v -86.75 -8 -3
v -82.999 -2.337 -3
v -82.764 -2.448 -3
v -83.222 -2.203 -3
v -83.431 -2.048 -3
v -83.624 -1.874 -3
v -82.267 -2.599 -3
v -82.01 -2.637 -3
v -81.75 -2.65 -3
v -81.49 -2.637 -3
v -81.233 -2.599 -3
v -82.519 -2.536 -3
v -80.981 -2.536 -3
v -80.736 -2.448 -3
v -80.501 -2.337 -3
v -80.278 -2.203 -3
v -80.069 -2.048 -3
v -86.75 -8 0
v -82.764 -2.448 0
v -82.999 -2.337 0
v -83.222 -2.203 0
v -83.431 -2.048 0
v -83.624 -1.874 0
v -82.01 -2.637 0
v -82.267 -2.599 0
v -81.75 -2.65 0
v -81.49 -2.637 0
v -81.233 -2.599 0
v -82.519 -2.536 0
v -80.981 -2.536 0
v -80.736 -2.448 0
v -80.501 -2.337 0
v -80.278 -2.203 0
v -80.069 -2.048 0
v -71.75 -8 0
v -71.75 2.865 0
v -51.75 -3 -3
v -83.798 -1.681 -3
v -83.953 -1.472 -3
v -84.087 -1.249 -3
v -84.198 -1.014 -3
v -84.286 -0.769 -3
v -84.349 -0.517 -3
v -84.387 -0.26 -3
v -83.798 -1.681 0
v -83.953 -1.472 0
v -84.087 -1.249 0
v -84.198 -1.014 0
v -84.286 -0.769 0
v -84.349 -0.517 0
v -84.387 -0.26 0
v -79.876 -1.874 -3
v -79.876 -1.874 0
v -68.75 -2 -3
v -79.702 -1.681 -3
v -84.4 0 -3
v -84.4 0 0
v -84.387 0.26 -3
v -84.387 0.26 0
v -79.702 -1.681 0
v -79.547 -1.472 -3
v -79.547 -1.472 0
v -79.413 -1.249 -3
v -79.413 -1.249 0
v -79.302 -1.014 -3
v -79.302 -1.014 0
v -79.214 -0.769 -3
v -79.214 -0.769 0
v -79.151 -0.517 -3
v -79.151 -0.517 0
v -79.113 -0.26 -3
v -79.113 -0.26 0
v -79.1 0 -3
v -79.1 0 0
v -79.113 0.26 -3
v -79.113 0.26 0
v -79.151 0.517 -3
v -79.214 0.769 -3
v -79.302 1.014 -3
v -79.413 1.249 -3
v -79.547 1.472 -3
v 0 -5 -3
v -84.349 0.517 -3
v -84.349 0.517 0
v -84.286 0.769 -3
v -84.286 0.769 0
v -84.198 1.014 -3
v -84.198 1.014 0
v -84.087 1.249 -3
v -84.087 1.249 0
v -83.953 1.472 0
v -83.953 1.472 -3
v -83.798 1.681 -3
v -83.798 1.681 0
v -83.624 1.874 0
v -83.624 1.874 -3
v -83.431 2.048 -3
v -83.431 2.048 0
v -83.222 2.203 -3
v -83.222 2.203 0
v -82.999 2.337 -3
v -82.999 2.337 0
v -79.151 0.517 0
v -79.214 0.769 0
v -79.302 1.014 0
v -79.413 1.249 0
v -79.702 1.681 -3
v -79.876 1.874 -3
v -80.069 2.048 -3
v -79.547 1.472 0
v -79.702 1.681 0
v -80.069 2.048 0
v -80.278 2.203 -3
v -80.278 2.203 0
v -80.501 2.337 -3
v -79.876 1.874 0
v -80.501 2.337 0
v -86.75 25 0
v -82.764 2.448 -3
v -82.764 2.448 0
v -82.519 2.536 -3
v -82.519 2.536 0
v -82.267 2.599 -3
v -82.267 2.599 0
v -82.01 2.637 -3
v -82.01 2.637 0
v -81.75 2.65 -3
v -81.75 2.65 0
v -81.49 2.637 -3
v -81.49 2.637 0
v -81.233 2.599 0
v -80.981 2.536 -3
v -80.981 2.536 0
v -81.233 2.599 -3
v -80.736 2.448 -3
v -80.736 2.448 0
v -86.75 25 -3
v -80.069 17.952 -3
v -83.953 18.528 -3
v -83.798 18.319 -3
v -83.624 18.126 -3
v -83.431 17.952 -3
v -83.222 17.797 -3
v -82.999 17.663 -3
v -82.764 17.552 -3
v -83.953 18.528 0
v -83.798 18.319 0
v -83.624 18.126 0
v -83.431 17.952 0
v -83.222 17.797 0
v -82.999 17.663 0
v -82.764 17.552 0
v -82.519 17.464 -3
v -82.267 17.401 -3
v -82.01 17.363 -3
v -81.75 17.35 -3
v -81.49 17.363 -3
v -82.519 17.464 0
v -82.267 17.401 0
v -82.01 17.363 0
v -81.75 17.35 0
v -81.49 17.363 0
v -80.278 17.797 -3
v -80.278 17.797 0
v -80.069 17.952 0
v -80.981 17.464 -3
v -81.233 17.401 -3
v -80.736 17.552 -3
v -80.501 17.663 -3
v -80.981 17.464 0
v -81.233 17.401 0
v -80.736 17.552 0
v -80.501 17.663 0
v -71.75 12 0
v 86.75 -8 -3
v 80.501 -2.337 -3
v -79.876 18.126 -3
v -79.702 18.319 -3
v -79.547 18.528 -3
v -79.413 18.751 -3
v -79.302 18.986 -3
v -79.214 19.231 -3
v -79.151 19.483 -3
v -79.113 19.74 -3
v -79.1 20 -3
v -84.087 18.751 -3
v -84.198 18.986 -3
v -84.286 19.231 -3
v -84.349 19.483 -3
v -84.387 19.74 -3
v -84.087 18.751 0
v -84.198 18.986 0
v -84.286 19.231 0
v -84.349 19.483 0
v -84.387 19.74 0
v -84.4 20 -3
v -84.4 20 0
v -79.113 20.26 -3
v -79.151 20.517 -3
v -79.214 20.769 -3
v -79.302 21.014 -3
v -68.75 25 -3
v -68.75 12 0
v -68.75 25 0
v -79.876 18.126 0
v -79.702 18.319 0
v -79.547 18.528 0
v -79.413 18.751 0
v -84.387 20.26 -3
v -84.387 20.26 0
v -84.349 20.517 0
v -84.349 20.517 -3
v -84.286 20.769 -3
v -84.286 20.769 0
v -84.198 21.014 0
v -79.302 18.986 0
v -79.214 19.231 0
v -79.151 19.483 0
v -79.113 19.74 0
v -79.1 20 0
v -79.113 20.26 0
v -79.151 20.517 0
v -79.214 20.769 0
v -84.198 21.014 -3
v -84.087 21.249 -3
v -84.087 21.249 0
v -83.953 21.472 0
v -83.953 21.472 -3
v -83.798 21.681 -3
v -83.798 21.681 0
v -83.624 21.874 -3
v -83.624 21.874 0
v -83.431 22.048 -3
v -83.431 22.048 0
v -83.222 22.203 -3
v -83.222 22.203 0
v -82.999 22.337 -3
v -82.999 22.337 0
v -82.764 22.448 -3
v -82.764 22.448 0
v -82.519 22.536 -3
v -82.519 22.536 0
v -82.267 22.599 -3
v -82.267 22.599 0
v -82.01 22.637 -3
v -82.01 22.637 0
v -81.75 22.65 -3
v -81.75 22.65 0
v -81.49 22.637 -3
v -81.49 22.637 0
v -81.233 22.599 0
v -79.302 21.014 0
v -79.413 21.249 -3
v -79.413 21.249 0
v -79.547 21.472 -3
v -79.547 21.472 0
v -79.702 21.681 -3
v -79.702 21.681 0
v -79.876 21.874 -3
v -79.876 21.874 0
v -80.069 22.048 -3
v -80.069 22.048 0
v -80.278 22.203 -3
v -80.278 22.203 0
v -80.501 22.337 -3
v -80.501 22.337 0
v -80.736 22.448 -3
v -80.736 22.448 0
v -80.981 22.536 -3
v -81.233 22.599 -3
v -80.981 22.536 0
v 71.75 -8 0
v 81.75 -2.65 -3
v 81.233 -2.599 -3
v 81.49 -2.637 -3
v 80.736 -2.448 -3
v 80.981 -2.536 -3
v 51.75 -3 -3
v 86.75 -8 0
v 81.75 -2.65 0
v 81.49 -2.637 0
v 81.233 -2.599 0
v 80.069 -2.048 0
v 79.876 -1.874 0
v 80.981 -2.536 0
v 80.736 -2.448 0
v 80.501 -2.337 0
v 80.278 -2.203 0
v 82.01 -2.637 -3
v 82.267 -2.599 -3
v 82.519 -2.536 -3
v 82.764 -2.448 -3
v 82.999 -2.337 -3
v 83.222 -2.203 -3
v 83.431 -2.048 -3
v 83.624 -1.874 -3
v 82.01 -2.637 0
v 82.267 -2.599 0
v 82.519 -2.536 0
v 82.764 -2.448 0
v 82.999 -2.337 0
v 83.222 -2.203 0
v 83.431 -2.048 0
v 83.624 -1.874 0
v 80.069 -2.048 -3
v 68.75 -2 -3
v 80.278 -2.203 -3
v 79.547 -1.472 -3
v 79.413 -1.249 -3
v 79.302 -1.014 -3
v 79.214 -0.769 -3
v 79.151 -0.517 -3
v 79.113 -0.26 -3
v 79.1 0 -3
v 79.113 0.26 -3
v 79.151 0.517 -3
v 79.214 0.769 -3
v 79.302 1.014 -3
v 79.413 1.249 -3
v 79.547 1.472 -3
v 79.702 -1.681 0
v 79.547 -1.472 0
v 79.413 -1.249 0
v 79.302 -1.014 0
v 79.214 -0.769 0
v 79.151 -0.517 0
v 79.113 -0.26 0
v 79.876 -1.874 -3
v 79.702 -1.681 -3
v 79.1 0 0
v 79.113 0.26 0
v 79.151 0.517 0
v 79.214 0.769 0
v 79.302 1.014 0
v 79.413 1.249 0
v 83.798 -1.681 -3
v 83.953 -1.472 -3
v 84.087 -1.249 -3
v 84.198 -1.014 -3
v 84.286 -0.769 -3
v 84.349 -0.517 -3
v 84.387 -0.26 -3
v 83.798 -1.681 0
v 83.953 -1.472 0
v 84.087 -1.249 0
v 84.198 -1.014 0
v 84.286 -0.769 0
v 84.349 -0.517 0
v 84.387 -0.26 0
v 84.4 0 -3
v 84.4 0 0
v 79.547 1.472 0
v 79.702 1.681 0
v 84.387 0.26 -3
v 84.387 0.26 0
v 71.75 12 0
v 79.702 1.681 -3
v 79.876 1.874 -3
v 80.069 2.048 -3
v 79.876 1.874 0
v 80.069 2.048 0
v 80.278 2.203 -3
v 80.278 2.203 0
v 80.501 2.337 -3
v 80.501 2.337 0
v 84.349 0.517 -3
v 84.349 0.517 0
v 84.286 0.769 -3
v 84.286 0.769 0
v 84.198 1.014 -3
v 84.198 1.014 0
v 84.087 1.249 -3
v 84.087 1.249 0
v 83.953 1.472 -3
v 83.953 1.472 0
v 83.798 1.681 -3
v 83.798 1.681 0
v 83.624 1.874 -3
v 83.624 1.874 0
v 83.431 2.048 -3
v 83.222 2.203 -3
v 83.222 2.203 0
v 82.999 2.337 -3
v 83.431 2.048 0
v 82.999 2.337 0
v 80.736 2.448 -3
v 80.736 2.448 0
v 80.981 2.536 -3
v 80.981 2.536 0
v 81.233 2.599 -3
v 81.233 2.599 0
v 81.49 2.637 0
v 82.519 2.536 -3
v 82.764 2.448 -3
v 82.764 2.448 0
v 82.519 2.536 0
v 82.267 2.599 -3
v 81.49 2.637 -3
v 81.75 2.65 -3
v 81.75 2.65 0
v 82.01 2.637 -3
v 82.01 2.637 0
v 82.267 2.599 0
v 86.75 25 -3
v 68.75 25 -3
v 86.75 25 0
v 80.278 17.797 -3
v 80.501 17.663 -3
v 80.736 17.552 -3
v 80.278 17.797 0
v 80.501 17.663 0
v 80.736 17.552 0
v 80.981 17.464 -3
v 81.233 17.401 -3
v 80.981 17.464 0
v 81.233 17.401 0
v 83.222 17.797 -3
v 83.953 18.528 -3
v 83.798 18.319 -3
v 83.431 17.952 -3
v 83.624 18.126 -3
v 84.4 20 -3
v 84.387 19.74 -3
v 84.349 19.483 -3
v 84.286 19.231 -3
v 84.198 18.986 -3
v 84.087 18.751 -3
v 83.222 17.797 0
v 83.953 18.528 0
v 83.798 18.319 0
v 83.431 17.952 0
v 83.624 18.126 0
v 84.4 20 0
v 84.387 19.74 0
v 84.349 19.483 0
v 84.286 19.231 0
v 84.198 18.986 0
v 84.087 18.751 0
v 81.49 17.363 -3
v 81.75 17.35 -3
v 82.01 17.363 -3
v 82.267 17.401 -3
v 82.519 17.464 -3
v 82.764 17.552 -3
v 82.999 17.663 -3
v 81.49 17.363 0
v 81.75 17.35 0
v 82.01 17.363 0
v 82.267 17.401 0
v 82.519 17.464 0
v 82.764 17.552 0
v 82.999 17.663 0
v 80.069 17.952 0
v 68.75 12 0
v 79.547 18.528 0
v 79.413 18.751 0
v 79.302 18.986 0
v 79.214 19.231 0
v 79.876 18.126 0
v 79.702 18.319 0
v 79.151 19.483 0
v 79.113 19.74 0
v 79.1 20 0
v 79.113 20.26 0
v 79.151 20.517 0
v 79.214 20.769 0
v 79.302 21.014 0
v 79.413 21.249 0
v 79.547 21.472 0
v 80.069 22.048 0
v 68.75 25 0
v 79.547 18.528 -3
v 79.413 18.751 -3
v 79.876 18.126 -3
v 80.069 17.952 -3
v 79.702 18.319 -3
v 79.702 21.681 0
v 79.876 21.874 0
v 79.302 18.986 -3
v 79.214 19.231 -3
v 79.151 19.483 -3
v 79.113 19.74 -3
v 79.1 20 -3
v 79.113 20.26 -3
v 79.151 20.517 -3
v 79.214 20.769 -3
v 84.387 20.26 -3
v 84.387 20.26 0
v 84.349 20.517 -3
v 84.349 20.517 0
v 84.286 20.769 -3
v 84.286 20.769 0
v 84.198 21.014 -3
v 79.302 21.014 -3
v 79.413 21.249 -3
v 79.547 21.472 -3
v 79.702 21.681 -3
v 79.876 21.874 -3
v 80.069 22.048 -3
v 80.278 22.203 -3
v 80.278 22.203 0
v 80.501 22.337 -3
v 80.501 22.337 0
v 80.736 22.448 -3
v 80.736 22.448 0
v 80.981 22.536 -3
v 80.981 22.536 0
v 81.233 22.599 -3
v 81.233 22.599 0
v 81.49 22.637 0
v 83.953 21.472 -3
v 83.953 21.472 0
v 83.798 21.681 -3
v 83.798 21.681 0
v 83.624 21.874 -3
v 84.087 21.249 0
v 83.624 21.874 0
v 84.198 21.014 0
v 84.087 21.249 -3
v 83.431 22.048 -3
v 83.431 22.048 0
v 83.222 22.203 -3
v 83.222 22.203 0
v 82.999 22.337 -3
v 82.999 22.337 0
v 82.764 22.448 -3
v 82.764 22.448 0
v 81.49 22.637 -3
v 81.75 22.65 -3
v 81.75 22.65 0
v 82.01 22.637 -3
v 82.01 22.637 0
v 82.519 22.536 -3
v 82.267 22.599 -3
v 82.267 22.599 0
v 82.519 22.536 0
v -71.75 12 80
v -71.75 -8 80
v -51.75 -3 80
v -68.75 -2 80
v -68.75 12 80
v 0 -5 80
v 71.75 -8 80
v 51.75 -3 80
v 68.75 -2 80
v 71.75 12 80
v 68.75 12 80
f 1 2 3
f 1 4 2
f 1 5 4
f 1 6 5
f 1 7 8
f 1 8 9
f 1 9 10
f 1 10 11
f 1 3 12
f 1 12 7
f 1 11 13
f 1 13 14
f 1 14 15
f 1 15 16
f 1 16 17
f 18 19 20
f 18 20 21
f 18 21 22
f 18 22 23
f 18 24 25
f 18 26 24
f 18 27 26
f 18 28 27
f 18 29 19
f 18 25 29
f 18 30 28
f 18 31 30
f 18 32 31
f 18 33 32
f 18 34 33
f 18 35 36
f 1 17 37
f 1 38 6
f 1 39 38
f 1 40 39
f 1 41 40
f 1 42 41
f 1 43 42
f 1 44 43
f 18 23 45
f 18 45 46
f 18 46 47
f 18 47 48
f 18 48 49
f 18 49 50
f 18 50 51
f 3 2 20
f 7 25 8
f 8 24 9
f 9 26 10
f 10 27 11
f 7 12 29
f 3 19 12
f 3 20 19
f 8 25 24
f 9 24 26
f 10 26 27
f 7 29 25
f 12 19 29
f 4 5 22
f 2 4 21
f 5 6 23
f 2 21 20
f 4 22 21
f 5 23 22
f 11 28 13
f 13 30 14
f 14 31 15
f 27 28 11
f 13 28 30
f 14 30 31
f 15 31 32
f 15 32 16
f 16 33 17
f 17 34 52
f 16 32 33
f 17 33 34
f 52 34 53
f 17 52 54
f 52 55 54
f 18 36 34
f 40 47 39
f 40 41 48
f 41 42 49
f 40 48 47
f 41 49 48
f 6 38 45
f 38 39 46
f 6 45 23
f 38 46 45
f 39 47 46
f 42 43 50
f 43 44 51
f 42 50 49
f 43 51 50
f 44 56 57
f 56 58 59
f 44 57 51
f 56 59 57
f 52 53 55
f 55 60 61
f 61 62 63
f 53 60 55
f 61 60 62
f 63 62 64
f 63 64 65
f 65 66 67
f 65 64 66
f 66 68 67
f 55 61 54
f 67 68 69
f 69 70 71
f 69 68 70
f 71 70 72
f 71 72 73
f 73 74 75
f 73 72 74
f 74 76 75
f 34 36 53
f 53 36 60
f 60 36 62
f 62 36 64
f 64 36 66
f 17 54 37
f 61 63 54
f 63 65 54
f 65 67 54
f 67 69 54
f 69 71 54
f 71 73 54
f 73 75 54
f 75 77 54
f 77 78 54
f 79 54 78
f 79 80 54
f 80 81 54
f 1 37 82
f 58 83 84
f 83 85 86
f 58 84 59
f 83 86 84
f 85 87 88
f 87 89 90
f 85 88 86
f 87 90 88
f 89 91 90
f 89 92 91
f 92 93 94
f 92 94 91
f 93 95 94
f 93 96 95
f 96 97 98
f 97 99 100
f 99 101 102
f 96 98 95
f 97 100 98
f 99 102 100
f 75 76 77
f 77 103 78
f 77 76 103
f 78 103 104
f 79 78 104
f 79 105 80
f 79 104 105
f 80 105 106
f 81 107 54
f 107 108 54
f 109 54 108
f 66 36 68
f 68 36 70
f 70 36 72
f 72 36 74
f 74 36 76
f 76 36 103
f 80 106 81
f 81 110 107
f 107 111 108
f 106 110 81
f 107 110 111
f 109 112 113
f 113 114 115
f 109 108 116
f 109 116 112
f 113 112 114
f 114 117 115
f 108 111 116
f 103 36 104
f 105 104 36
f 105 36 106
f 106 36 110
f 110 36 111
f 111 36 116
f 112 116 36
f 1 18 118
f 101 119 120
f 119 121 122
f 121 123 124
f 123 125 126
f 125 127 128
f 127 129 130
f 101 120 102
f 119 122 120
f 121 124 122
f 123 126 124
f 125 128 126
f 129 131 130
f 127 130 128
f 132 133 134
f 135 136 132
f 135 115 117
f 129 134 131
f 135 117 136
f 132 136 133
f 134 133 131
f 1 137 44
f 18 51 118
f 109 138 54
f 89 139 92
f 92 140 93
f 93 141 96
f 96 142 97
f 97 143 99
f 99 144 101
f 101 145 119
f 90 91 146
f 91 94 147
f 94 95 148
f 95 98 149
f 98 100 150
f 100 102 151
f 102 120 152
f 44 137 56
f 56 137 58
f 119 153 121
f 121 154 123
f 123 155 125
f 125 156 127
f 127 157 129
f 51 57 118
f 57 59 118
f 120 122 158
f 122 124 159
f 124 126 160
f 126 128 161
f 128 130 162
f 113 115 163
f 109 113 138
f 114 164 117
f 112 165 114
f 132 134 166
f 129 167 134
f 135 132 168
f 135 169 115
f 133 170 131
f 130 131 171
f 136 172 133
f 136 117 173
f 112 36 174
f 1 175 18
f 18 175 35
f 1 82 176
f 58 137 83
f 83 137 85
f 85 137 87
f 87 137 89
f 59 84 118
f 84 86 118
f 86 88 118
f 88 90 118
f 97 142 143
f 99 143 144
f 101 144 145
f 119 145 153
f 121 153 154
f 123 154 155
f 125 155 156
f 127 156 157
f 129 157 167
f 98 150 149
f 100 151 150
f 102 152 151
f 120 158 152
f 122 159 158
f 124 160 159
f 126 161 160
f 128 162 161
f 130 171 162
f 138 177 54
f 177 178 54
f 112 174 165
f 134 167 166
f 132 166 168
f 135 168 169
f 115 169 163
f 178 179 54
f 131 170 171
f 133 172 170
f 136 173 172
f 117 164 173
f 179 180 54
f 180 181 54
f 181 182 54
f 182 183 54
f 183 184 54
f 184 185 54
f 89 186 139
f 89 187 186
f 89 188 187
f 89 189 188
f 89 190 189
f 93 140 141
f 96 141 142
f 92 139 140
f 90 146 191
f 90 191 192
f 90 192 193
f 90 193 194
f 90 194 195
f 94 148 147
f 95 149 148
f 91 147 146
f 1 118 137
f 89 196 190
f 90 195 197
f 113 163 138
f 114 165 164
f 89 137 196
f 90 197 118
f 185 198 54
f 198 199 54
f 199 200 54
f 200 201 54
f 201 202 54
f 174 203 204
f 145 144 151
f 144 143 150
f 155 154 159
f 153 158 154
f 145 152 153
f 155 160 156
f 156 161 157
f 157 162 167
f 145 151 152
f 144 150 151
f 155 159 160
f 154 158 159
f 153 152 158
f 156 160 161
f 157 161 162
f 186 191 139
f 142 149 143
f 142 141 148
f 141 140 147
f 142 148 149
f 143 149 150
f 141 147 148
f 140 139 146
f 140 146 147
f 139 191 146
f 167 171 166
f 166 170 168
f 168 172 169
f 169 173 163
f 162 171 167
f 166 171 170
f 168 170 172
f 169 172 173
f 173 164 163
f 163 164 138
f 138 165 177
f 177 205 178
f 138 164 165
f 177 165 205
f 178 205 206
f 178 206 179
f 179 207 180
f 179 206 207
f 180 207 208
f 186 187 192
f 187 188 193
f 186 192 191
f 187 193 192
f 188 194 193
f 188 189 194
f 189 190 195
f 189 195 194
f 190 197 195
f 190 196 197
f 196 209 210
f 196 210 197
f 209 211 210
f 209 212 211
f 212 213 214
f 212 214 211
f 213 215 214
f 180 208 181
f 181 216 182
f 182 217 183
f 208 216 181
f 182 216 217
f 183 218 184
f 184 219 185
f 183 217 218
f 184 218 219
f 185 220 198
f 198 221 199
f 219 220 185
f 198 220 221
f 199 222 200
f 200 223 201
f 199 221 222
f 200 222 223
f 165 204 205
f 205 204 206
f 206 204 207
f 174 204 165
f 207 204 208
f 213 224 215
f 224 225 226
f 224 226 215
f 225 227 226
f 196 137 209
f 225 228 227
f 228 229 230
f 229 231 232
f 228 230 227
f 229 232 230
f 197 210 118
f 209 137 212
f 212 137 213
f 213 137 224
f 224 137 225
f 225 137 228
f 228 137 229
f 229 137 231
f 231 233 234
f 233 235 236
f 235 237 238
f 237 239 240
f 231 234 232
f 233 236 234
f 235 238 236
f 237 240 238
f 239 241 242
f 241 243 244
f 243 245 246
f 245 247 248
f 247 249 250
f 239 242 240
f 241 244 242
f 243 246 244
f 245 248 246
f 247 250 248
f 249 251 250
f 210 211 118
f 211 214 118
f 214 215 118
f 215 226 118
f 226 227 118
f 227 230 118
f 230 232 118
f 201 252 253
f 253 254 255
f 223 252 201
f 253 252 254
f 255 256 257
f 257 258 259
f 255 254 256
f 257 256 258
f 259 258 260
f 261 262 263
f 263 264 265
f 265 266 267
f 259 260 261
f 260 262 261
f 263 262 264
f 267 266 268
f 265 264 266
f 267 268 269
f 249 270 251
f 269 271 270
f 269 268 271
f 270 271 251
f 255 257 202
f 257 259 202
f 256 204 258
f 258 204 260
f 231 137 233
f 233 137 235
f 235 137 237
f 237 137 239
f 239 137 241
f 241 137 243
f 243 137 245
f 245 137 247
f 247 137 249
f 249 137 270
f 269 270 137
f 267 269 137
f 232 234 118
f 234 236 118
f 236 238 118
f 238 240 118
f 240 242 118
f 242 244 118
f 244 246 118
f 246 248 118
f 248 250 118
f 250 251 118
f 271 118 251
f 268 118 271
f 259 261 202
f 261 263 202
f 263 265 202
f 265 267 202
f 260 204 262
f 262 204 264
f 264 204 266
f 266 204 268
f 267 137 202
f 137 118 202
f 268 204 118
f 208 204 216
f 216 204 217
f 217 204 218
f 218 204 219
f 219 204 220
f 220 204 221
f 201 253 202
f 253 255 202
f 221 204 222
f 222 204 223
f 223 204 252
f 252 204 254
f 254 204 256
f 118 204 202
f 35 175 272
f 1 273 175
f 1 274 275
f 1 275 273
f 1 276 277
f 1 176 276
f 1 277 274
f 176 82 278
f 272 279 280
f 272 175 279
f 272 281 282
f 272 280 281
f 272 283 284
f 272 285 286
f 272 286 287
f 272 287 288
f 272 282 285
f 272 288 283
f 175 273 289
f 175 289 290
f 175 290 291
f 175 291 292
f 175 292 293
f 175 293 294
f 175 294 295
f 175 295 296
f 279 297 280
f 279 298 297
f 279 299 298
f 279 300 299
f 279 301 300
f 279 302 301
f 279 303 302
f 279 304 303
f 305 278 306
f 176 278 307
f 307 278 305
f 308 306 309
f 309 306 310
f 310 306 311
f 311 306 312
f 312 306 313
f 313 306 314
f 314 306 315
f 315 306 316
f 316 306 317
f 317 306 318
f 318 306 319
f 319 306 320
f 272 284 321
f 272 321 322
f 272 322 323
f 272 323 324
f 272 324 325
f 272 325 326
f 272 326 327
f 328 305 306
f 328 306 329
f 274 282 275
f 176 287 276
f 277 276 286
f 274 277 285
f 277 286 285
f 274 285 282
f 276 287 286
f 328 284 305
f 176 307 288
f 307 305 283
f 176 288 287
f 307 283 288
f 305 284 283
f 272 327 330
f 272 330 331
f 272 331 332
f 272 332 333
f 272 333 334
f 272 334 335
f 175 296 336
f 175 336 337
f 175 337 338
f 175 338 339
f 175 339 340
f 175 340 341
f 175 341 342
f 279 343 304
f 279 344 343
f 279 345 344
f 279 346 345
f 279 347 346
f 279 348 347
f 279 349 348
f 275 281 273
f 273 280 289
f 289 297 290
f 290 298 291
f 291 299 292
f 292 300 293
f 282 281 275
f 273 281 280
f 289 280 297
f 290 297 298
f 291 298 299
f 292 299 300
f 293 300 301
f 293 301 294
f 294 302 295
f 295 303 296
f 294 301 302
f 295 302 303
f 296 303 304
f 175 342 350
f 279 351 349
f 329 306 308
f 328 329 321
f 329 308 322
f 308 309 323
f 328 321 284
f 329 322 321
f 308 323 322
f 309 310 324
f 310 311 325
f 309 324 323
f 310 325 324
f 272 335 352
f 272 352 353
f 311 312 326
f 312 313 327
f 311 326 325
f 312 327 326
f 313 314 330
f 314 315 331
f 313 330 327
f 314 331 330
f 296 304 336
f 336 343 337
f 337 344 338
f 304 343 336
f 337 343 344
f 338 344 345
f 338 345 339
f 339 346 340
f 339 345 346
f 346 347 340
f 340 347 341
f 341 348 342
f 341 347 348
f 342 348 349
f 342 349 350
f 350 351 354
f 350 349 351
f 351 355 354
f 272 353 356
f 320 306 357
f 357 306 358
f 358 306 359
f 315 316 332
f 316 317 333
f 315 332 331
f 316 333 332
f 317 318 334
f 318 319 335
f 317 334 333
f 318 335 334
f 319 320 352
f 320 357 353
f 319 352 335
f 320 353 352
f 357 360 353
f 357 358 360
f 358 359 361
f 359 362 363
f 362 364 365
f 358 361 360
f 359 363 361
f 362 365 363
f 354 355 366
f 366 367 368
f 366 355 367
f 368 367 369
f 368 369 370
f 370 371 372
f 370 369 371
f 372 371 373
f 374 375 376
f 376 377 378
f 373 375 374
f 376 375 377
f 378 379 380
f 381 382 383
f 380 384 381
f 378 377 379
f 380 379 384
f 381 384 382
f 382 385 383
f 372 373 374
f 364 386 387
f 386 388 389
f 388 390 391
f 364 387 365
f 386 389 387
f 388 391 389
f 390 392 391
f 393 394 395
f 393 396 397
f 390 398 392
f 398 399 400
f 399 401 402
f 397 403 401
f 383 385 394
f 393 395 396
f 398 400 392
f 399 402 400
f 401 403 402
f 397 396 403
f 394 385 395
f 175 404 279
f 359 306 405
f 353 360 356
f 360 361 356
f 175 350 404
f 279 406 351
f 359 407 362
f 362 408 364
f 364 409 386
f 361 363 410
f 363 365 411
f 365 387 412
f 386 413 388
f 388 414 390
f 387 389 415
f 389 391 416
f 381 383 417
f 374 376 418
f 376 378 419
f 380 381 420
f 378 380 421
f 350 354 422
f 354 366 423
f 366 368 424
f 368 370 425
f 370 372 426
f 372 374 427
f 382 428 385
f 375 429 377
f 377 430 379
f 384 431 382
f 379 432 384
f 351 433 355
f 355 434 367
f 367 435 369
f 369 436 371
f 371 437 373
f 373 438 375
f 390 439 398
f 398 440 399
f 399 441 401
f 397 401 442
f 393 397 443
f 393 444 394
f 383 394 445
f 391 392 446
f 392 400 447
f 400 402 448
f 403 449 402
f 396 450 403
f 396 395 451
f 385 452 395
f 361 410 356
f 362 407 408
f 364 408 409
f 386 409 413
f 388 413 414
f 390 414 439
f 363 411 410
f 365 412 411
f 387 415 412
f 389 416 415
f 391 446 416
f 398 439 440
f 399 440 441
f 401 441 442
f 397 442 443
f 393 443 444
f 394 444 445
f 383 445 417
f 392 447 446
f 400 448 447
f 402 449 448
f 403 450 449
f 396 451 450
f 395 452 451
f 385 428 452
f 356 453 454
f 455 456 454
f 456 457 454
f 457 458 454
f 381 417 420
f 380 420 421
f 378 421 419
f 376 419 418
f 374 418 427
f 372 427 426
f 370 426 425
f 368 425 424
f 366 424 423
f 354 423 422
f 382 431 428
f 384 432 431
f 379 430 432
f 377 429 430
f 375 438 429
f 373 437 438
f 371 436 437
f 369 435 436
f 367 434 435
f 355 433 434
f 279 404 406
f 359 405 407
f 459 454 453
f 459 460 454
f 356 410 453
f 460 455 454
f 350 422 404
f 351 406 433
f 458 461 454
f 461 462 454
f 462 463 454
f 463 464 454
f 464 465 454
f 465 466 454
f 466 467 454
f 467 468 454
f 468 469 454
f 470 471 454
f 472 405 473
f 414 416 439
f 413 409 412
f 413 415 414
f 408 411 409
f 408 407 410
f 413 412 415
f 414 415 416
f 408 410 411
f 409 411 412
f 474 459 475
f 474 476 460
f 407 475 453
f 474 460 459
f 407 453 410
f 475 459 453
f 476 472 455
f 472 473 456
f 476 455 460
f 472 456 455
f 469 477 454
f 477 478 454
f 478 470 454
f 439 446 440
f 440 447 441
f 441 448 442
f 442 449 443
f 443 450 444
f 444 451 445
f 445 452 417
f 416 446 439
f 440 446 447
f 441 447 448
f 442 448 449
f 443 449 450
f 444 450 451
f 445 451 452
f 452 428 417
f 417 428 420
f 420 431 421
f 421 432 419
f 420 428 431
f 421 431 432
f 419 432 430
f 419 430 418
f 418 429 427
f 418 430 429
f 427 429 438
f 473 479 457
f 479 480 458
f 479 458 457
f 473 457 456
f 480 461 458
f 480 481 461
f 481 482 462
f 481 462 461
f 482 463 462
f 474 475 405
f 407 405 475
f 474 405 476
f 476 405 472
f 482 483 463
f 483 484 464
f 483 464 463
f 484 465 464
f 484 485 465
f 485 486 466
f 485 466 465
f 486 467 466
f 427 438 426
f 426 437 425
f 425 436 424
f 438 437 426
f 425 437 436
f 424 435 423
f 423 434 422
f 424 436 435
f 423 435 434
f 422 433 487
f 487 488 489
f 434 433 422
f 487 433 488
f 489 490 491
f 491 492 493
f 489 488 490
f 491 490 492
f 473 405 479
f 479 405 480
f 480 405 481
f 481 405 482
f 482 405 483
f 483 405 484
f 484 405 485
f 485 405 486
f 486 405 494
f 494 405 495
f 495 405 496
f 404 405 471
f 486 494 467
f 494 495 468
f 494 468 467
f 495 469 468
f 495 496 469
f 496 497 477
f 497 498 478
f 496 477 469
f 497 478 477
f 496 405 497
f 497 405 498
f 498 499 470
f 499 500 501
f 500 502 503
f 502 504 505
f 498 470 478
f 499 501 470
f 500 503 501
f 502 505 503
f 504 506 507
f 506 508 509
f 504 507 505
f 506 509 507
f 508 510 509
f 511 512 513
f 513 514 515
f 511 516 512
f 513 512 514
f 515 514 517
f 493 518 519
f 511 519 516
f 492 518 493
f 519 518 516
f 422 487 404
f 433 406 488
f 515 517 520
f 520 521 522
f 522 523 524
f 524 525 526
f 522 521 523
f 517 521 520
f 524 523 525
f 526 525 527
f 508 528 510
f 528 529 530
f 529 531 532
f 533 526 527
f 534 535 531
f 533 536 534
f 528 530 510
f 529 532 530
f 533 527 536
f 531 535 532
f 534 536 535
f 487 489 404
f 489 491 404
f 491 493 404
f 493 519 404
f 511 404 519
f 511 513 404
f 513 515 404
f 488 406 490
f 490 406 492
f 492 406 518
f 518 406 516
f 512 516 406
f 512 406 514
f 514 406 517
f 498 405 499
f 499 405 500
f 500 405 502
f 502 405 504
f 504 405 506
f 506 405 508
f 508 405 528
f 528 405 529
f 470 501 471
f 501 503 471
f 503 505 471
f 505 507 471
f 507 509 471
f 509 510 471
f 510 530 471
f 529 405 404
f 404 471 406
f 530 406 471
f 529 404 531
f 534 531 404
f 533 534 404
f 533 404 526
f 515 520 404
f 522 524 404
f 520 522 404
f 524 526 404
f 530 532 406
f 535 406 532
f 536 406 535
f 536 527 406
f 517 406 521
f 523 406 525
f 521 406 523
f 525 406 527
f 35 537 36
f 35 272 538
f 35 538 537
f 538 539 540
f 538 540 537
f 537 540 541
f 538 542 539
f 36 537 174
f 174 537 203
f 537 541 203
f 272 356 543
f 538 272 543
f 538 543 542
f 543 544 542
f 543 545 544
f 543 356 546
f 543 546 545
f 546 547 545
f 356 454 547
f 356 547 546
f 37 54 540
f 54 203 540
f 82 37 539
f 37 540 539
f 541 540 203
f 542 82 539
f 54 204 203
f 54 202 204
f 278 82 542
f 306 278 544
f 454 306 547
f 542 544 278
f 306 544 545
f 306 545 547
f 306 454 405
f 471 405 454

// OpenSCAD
$fn = $preview ? 16 : 64;


boxSideWidth = 310;

handleWidth = 137.5;

holeDistance = 163.5;
outerPartWidth = holeDistance + 10;

module outerPart()
{
    difference()
    {
        translate([-outerPartWidth/2,-8])
            square([outerPartWidth,33]);
        translate([-holeDistance/2, 0])
            circle(d=5.3);
        translate([holeDistance/2, 0])
            circle(d=5.3);
        translate([-holeDistance/2, 20])
            circle(d=5.3);
        translate([holeDistance/2, 20])
            circle(d=5.3);
    }
}

module innerPart()
{
    points = [
        [-handleWidth/2,50],
        [-handleWidth/2,-2],
        [-handleWidth/2 + 17,-3],
        [0,-5],
        [handleWidth/2 - 17,-3],
        [handleWidth/2,-2],
        [handleWidth/2,50],
    ];

    polygon(points);
}

difference()
{
    union()
    {
        translate([0,0,-3])
            linear_extrude(height=3)
            outerPart();
        translate([0,-8,0])
            linear_extrude(height=80)
            translate([-(handleWidth+6)/2,0])
            square([handleWidth+6,20]);
    }
    translate([0,0,-10])
        linear_extrude(height=100)
            innerPart();
}


    
